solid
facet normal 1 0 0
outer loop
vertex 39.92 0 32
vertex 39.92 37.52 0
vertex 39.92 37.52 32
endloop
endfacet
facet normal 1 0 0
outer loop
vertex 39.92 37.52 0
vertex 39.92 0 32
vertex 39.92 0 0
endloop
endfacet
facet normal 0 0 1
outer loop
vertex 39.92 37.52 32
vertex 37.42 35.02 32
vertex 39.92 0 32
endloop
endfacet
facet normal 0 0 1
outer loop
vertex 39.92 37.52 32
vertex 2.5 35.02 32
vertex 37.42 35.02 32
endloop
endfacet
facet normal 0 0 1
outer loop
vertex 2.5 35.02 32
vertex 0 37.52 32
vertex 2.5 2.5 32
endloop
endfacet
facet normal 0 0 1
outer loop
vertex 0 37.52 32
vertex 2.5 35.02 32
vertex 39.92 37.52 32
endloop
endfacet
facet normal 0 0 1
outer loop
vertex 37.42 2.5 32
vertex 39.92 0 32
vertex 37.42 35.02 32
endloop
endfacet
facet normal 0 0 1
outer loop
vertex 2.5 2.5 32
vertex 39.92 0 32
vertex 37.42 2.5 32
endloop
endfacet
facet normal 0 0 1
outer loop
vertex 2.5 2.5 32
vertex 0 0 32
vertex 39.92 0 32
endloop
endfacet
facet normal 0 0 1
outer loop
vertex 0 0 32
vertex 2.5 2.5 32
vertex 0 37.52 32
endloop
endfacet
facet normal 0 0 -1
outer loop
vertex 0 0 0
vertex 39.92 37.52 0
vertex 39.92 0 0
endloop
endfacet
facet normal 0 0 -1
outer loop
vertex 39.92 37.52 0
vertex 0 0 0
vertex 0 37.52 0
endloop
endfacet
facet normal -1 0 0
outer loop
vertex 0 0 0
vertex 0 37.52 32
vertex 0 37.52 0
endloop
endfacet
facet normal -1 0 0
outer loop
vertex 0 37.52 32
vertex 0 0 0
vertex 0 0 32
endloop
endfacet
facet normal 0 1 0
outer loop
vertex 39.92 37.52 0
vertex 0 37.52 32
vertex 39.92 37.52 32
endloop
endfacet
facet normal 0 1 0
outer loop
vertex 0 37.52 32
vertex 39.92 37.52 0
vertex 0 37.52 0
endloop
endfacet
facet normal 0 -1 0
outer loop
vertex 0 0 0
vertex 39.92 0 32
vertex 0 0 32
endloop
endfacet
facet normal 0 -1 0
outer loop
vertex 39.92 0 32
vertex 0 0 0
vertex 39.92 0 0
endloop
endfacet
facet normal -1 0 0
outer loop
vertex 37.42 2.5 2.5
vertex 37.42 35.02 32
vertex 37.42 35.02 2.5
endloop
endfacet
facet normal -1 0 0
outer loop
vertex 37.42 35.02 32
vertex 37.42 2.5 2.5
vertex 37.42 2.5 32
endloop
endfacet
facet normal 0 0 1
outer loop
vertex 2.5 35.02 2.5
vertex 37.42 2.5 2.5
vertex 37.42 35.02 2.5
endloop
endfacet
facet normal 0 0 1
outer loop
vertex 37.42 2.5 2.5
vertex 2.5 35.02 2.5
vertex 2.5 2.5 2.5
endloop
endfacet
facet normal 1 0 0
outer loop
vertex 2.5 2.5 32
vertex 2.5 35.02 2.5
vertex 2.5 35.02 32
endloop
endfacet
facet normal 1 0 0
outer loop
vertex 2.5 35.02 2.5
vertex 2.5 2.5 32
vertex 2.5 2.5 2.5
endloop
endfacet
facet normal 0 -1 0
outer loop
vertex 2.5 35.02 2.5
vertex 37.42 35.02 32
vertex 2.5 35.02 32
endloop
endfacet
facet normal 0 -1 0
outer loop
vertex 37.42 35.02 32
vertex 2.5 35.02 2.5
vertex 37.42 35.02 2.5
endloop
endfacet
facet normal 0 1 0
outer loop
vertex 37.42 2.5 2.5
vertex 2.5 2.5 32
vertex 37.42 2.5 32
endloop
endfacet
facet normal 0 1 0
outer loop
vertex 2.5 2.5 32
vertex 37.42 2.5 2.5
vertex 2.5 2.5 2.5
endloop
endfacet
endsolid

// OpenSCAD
x = 34.92;
y = 32.52;
z = 27;
walls = 2.5;

difference() {
    cube([x+(walls*2), y+(walls*2), z+(walls*2)]);
    translate([walls, walls, walls])
        cube([x, y, z+walls]);
}
